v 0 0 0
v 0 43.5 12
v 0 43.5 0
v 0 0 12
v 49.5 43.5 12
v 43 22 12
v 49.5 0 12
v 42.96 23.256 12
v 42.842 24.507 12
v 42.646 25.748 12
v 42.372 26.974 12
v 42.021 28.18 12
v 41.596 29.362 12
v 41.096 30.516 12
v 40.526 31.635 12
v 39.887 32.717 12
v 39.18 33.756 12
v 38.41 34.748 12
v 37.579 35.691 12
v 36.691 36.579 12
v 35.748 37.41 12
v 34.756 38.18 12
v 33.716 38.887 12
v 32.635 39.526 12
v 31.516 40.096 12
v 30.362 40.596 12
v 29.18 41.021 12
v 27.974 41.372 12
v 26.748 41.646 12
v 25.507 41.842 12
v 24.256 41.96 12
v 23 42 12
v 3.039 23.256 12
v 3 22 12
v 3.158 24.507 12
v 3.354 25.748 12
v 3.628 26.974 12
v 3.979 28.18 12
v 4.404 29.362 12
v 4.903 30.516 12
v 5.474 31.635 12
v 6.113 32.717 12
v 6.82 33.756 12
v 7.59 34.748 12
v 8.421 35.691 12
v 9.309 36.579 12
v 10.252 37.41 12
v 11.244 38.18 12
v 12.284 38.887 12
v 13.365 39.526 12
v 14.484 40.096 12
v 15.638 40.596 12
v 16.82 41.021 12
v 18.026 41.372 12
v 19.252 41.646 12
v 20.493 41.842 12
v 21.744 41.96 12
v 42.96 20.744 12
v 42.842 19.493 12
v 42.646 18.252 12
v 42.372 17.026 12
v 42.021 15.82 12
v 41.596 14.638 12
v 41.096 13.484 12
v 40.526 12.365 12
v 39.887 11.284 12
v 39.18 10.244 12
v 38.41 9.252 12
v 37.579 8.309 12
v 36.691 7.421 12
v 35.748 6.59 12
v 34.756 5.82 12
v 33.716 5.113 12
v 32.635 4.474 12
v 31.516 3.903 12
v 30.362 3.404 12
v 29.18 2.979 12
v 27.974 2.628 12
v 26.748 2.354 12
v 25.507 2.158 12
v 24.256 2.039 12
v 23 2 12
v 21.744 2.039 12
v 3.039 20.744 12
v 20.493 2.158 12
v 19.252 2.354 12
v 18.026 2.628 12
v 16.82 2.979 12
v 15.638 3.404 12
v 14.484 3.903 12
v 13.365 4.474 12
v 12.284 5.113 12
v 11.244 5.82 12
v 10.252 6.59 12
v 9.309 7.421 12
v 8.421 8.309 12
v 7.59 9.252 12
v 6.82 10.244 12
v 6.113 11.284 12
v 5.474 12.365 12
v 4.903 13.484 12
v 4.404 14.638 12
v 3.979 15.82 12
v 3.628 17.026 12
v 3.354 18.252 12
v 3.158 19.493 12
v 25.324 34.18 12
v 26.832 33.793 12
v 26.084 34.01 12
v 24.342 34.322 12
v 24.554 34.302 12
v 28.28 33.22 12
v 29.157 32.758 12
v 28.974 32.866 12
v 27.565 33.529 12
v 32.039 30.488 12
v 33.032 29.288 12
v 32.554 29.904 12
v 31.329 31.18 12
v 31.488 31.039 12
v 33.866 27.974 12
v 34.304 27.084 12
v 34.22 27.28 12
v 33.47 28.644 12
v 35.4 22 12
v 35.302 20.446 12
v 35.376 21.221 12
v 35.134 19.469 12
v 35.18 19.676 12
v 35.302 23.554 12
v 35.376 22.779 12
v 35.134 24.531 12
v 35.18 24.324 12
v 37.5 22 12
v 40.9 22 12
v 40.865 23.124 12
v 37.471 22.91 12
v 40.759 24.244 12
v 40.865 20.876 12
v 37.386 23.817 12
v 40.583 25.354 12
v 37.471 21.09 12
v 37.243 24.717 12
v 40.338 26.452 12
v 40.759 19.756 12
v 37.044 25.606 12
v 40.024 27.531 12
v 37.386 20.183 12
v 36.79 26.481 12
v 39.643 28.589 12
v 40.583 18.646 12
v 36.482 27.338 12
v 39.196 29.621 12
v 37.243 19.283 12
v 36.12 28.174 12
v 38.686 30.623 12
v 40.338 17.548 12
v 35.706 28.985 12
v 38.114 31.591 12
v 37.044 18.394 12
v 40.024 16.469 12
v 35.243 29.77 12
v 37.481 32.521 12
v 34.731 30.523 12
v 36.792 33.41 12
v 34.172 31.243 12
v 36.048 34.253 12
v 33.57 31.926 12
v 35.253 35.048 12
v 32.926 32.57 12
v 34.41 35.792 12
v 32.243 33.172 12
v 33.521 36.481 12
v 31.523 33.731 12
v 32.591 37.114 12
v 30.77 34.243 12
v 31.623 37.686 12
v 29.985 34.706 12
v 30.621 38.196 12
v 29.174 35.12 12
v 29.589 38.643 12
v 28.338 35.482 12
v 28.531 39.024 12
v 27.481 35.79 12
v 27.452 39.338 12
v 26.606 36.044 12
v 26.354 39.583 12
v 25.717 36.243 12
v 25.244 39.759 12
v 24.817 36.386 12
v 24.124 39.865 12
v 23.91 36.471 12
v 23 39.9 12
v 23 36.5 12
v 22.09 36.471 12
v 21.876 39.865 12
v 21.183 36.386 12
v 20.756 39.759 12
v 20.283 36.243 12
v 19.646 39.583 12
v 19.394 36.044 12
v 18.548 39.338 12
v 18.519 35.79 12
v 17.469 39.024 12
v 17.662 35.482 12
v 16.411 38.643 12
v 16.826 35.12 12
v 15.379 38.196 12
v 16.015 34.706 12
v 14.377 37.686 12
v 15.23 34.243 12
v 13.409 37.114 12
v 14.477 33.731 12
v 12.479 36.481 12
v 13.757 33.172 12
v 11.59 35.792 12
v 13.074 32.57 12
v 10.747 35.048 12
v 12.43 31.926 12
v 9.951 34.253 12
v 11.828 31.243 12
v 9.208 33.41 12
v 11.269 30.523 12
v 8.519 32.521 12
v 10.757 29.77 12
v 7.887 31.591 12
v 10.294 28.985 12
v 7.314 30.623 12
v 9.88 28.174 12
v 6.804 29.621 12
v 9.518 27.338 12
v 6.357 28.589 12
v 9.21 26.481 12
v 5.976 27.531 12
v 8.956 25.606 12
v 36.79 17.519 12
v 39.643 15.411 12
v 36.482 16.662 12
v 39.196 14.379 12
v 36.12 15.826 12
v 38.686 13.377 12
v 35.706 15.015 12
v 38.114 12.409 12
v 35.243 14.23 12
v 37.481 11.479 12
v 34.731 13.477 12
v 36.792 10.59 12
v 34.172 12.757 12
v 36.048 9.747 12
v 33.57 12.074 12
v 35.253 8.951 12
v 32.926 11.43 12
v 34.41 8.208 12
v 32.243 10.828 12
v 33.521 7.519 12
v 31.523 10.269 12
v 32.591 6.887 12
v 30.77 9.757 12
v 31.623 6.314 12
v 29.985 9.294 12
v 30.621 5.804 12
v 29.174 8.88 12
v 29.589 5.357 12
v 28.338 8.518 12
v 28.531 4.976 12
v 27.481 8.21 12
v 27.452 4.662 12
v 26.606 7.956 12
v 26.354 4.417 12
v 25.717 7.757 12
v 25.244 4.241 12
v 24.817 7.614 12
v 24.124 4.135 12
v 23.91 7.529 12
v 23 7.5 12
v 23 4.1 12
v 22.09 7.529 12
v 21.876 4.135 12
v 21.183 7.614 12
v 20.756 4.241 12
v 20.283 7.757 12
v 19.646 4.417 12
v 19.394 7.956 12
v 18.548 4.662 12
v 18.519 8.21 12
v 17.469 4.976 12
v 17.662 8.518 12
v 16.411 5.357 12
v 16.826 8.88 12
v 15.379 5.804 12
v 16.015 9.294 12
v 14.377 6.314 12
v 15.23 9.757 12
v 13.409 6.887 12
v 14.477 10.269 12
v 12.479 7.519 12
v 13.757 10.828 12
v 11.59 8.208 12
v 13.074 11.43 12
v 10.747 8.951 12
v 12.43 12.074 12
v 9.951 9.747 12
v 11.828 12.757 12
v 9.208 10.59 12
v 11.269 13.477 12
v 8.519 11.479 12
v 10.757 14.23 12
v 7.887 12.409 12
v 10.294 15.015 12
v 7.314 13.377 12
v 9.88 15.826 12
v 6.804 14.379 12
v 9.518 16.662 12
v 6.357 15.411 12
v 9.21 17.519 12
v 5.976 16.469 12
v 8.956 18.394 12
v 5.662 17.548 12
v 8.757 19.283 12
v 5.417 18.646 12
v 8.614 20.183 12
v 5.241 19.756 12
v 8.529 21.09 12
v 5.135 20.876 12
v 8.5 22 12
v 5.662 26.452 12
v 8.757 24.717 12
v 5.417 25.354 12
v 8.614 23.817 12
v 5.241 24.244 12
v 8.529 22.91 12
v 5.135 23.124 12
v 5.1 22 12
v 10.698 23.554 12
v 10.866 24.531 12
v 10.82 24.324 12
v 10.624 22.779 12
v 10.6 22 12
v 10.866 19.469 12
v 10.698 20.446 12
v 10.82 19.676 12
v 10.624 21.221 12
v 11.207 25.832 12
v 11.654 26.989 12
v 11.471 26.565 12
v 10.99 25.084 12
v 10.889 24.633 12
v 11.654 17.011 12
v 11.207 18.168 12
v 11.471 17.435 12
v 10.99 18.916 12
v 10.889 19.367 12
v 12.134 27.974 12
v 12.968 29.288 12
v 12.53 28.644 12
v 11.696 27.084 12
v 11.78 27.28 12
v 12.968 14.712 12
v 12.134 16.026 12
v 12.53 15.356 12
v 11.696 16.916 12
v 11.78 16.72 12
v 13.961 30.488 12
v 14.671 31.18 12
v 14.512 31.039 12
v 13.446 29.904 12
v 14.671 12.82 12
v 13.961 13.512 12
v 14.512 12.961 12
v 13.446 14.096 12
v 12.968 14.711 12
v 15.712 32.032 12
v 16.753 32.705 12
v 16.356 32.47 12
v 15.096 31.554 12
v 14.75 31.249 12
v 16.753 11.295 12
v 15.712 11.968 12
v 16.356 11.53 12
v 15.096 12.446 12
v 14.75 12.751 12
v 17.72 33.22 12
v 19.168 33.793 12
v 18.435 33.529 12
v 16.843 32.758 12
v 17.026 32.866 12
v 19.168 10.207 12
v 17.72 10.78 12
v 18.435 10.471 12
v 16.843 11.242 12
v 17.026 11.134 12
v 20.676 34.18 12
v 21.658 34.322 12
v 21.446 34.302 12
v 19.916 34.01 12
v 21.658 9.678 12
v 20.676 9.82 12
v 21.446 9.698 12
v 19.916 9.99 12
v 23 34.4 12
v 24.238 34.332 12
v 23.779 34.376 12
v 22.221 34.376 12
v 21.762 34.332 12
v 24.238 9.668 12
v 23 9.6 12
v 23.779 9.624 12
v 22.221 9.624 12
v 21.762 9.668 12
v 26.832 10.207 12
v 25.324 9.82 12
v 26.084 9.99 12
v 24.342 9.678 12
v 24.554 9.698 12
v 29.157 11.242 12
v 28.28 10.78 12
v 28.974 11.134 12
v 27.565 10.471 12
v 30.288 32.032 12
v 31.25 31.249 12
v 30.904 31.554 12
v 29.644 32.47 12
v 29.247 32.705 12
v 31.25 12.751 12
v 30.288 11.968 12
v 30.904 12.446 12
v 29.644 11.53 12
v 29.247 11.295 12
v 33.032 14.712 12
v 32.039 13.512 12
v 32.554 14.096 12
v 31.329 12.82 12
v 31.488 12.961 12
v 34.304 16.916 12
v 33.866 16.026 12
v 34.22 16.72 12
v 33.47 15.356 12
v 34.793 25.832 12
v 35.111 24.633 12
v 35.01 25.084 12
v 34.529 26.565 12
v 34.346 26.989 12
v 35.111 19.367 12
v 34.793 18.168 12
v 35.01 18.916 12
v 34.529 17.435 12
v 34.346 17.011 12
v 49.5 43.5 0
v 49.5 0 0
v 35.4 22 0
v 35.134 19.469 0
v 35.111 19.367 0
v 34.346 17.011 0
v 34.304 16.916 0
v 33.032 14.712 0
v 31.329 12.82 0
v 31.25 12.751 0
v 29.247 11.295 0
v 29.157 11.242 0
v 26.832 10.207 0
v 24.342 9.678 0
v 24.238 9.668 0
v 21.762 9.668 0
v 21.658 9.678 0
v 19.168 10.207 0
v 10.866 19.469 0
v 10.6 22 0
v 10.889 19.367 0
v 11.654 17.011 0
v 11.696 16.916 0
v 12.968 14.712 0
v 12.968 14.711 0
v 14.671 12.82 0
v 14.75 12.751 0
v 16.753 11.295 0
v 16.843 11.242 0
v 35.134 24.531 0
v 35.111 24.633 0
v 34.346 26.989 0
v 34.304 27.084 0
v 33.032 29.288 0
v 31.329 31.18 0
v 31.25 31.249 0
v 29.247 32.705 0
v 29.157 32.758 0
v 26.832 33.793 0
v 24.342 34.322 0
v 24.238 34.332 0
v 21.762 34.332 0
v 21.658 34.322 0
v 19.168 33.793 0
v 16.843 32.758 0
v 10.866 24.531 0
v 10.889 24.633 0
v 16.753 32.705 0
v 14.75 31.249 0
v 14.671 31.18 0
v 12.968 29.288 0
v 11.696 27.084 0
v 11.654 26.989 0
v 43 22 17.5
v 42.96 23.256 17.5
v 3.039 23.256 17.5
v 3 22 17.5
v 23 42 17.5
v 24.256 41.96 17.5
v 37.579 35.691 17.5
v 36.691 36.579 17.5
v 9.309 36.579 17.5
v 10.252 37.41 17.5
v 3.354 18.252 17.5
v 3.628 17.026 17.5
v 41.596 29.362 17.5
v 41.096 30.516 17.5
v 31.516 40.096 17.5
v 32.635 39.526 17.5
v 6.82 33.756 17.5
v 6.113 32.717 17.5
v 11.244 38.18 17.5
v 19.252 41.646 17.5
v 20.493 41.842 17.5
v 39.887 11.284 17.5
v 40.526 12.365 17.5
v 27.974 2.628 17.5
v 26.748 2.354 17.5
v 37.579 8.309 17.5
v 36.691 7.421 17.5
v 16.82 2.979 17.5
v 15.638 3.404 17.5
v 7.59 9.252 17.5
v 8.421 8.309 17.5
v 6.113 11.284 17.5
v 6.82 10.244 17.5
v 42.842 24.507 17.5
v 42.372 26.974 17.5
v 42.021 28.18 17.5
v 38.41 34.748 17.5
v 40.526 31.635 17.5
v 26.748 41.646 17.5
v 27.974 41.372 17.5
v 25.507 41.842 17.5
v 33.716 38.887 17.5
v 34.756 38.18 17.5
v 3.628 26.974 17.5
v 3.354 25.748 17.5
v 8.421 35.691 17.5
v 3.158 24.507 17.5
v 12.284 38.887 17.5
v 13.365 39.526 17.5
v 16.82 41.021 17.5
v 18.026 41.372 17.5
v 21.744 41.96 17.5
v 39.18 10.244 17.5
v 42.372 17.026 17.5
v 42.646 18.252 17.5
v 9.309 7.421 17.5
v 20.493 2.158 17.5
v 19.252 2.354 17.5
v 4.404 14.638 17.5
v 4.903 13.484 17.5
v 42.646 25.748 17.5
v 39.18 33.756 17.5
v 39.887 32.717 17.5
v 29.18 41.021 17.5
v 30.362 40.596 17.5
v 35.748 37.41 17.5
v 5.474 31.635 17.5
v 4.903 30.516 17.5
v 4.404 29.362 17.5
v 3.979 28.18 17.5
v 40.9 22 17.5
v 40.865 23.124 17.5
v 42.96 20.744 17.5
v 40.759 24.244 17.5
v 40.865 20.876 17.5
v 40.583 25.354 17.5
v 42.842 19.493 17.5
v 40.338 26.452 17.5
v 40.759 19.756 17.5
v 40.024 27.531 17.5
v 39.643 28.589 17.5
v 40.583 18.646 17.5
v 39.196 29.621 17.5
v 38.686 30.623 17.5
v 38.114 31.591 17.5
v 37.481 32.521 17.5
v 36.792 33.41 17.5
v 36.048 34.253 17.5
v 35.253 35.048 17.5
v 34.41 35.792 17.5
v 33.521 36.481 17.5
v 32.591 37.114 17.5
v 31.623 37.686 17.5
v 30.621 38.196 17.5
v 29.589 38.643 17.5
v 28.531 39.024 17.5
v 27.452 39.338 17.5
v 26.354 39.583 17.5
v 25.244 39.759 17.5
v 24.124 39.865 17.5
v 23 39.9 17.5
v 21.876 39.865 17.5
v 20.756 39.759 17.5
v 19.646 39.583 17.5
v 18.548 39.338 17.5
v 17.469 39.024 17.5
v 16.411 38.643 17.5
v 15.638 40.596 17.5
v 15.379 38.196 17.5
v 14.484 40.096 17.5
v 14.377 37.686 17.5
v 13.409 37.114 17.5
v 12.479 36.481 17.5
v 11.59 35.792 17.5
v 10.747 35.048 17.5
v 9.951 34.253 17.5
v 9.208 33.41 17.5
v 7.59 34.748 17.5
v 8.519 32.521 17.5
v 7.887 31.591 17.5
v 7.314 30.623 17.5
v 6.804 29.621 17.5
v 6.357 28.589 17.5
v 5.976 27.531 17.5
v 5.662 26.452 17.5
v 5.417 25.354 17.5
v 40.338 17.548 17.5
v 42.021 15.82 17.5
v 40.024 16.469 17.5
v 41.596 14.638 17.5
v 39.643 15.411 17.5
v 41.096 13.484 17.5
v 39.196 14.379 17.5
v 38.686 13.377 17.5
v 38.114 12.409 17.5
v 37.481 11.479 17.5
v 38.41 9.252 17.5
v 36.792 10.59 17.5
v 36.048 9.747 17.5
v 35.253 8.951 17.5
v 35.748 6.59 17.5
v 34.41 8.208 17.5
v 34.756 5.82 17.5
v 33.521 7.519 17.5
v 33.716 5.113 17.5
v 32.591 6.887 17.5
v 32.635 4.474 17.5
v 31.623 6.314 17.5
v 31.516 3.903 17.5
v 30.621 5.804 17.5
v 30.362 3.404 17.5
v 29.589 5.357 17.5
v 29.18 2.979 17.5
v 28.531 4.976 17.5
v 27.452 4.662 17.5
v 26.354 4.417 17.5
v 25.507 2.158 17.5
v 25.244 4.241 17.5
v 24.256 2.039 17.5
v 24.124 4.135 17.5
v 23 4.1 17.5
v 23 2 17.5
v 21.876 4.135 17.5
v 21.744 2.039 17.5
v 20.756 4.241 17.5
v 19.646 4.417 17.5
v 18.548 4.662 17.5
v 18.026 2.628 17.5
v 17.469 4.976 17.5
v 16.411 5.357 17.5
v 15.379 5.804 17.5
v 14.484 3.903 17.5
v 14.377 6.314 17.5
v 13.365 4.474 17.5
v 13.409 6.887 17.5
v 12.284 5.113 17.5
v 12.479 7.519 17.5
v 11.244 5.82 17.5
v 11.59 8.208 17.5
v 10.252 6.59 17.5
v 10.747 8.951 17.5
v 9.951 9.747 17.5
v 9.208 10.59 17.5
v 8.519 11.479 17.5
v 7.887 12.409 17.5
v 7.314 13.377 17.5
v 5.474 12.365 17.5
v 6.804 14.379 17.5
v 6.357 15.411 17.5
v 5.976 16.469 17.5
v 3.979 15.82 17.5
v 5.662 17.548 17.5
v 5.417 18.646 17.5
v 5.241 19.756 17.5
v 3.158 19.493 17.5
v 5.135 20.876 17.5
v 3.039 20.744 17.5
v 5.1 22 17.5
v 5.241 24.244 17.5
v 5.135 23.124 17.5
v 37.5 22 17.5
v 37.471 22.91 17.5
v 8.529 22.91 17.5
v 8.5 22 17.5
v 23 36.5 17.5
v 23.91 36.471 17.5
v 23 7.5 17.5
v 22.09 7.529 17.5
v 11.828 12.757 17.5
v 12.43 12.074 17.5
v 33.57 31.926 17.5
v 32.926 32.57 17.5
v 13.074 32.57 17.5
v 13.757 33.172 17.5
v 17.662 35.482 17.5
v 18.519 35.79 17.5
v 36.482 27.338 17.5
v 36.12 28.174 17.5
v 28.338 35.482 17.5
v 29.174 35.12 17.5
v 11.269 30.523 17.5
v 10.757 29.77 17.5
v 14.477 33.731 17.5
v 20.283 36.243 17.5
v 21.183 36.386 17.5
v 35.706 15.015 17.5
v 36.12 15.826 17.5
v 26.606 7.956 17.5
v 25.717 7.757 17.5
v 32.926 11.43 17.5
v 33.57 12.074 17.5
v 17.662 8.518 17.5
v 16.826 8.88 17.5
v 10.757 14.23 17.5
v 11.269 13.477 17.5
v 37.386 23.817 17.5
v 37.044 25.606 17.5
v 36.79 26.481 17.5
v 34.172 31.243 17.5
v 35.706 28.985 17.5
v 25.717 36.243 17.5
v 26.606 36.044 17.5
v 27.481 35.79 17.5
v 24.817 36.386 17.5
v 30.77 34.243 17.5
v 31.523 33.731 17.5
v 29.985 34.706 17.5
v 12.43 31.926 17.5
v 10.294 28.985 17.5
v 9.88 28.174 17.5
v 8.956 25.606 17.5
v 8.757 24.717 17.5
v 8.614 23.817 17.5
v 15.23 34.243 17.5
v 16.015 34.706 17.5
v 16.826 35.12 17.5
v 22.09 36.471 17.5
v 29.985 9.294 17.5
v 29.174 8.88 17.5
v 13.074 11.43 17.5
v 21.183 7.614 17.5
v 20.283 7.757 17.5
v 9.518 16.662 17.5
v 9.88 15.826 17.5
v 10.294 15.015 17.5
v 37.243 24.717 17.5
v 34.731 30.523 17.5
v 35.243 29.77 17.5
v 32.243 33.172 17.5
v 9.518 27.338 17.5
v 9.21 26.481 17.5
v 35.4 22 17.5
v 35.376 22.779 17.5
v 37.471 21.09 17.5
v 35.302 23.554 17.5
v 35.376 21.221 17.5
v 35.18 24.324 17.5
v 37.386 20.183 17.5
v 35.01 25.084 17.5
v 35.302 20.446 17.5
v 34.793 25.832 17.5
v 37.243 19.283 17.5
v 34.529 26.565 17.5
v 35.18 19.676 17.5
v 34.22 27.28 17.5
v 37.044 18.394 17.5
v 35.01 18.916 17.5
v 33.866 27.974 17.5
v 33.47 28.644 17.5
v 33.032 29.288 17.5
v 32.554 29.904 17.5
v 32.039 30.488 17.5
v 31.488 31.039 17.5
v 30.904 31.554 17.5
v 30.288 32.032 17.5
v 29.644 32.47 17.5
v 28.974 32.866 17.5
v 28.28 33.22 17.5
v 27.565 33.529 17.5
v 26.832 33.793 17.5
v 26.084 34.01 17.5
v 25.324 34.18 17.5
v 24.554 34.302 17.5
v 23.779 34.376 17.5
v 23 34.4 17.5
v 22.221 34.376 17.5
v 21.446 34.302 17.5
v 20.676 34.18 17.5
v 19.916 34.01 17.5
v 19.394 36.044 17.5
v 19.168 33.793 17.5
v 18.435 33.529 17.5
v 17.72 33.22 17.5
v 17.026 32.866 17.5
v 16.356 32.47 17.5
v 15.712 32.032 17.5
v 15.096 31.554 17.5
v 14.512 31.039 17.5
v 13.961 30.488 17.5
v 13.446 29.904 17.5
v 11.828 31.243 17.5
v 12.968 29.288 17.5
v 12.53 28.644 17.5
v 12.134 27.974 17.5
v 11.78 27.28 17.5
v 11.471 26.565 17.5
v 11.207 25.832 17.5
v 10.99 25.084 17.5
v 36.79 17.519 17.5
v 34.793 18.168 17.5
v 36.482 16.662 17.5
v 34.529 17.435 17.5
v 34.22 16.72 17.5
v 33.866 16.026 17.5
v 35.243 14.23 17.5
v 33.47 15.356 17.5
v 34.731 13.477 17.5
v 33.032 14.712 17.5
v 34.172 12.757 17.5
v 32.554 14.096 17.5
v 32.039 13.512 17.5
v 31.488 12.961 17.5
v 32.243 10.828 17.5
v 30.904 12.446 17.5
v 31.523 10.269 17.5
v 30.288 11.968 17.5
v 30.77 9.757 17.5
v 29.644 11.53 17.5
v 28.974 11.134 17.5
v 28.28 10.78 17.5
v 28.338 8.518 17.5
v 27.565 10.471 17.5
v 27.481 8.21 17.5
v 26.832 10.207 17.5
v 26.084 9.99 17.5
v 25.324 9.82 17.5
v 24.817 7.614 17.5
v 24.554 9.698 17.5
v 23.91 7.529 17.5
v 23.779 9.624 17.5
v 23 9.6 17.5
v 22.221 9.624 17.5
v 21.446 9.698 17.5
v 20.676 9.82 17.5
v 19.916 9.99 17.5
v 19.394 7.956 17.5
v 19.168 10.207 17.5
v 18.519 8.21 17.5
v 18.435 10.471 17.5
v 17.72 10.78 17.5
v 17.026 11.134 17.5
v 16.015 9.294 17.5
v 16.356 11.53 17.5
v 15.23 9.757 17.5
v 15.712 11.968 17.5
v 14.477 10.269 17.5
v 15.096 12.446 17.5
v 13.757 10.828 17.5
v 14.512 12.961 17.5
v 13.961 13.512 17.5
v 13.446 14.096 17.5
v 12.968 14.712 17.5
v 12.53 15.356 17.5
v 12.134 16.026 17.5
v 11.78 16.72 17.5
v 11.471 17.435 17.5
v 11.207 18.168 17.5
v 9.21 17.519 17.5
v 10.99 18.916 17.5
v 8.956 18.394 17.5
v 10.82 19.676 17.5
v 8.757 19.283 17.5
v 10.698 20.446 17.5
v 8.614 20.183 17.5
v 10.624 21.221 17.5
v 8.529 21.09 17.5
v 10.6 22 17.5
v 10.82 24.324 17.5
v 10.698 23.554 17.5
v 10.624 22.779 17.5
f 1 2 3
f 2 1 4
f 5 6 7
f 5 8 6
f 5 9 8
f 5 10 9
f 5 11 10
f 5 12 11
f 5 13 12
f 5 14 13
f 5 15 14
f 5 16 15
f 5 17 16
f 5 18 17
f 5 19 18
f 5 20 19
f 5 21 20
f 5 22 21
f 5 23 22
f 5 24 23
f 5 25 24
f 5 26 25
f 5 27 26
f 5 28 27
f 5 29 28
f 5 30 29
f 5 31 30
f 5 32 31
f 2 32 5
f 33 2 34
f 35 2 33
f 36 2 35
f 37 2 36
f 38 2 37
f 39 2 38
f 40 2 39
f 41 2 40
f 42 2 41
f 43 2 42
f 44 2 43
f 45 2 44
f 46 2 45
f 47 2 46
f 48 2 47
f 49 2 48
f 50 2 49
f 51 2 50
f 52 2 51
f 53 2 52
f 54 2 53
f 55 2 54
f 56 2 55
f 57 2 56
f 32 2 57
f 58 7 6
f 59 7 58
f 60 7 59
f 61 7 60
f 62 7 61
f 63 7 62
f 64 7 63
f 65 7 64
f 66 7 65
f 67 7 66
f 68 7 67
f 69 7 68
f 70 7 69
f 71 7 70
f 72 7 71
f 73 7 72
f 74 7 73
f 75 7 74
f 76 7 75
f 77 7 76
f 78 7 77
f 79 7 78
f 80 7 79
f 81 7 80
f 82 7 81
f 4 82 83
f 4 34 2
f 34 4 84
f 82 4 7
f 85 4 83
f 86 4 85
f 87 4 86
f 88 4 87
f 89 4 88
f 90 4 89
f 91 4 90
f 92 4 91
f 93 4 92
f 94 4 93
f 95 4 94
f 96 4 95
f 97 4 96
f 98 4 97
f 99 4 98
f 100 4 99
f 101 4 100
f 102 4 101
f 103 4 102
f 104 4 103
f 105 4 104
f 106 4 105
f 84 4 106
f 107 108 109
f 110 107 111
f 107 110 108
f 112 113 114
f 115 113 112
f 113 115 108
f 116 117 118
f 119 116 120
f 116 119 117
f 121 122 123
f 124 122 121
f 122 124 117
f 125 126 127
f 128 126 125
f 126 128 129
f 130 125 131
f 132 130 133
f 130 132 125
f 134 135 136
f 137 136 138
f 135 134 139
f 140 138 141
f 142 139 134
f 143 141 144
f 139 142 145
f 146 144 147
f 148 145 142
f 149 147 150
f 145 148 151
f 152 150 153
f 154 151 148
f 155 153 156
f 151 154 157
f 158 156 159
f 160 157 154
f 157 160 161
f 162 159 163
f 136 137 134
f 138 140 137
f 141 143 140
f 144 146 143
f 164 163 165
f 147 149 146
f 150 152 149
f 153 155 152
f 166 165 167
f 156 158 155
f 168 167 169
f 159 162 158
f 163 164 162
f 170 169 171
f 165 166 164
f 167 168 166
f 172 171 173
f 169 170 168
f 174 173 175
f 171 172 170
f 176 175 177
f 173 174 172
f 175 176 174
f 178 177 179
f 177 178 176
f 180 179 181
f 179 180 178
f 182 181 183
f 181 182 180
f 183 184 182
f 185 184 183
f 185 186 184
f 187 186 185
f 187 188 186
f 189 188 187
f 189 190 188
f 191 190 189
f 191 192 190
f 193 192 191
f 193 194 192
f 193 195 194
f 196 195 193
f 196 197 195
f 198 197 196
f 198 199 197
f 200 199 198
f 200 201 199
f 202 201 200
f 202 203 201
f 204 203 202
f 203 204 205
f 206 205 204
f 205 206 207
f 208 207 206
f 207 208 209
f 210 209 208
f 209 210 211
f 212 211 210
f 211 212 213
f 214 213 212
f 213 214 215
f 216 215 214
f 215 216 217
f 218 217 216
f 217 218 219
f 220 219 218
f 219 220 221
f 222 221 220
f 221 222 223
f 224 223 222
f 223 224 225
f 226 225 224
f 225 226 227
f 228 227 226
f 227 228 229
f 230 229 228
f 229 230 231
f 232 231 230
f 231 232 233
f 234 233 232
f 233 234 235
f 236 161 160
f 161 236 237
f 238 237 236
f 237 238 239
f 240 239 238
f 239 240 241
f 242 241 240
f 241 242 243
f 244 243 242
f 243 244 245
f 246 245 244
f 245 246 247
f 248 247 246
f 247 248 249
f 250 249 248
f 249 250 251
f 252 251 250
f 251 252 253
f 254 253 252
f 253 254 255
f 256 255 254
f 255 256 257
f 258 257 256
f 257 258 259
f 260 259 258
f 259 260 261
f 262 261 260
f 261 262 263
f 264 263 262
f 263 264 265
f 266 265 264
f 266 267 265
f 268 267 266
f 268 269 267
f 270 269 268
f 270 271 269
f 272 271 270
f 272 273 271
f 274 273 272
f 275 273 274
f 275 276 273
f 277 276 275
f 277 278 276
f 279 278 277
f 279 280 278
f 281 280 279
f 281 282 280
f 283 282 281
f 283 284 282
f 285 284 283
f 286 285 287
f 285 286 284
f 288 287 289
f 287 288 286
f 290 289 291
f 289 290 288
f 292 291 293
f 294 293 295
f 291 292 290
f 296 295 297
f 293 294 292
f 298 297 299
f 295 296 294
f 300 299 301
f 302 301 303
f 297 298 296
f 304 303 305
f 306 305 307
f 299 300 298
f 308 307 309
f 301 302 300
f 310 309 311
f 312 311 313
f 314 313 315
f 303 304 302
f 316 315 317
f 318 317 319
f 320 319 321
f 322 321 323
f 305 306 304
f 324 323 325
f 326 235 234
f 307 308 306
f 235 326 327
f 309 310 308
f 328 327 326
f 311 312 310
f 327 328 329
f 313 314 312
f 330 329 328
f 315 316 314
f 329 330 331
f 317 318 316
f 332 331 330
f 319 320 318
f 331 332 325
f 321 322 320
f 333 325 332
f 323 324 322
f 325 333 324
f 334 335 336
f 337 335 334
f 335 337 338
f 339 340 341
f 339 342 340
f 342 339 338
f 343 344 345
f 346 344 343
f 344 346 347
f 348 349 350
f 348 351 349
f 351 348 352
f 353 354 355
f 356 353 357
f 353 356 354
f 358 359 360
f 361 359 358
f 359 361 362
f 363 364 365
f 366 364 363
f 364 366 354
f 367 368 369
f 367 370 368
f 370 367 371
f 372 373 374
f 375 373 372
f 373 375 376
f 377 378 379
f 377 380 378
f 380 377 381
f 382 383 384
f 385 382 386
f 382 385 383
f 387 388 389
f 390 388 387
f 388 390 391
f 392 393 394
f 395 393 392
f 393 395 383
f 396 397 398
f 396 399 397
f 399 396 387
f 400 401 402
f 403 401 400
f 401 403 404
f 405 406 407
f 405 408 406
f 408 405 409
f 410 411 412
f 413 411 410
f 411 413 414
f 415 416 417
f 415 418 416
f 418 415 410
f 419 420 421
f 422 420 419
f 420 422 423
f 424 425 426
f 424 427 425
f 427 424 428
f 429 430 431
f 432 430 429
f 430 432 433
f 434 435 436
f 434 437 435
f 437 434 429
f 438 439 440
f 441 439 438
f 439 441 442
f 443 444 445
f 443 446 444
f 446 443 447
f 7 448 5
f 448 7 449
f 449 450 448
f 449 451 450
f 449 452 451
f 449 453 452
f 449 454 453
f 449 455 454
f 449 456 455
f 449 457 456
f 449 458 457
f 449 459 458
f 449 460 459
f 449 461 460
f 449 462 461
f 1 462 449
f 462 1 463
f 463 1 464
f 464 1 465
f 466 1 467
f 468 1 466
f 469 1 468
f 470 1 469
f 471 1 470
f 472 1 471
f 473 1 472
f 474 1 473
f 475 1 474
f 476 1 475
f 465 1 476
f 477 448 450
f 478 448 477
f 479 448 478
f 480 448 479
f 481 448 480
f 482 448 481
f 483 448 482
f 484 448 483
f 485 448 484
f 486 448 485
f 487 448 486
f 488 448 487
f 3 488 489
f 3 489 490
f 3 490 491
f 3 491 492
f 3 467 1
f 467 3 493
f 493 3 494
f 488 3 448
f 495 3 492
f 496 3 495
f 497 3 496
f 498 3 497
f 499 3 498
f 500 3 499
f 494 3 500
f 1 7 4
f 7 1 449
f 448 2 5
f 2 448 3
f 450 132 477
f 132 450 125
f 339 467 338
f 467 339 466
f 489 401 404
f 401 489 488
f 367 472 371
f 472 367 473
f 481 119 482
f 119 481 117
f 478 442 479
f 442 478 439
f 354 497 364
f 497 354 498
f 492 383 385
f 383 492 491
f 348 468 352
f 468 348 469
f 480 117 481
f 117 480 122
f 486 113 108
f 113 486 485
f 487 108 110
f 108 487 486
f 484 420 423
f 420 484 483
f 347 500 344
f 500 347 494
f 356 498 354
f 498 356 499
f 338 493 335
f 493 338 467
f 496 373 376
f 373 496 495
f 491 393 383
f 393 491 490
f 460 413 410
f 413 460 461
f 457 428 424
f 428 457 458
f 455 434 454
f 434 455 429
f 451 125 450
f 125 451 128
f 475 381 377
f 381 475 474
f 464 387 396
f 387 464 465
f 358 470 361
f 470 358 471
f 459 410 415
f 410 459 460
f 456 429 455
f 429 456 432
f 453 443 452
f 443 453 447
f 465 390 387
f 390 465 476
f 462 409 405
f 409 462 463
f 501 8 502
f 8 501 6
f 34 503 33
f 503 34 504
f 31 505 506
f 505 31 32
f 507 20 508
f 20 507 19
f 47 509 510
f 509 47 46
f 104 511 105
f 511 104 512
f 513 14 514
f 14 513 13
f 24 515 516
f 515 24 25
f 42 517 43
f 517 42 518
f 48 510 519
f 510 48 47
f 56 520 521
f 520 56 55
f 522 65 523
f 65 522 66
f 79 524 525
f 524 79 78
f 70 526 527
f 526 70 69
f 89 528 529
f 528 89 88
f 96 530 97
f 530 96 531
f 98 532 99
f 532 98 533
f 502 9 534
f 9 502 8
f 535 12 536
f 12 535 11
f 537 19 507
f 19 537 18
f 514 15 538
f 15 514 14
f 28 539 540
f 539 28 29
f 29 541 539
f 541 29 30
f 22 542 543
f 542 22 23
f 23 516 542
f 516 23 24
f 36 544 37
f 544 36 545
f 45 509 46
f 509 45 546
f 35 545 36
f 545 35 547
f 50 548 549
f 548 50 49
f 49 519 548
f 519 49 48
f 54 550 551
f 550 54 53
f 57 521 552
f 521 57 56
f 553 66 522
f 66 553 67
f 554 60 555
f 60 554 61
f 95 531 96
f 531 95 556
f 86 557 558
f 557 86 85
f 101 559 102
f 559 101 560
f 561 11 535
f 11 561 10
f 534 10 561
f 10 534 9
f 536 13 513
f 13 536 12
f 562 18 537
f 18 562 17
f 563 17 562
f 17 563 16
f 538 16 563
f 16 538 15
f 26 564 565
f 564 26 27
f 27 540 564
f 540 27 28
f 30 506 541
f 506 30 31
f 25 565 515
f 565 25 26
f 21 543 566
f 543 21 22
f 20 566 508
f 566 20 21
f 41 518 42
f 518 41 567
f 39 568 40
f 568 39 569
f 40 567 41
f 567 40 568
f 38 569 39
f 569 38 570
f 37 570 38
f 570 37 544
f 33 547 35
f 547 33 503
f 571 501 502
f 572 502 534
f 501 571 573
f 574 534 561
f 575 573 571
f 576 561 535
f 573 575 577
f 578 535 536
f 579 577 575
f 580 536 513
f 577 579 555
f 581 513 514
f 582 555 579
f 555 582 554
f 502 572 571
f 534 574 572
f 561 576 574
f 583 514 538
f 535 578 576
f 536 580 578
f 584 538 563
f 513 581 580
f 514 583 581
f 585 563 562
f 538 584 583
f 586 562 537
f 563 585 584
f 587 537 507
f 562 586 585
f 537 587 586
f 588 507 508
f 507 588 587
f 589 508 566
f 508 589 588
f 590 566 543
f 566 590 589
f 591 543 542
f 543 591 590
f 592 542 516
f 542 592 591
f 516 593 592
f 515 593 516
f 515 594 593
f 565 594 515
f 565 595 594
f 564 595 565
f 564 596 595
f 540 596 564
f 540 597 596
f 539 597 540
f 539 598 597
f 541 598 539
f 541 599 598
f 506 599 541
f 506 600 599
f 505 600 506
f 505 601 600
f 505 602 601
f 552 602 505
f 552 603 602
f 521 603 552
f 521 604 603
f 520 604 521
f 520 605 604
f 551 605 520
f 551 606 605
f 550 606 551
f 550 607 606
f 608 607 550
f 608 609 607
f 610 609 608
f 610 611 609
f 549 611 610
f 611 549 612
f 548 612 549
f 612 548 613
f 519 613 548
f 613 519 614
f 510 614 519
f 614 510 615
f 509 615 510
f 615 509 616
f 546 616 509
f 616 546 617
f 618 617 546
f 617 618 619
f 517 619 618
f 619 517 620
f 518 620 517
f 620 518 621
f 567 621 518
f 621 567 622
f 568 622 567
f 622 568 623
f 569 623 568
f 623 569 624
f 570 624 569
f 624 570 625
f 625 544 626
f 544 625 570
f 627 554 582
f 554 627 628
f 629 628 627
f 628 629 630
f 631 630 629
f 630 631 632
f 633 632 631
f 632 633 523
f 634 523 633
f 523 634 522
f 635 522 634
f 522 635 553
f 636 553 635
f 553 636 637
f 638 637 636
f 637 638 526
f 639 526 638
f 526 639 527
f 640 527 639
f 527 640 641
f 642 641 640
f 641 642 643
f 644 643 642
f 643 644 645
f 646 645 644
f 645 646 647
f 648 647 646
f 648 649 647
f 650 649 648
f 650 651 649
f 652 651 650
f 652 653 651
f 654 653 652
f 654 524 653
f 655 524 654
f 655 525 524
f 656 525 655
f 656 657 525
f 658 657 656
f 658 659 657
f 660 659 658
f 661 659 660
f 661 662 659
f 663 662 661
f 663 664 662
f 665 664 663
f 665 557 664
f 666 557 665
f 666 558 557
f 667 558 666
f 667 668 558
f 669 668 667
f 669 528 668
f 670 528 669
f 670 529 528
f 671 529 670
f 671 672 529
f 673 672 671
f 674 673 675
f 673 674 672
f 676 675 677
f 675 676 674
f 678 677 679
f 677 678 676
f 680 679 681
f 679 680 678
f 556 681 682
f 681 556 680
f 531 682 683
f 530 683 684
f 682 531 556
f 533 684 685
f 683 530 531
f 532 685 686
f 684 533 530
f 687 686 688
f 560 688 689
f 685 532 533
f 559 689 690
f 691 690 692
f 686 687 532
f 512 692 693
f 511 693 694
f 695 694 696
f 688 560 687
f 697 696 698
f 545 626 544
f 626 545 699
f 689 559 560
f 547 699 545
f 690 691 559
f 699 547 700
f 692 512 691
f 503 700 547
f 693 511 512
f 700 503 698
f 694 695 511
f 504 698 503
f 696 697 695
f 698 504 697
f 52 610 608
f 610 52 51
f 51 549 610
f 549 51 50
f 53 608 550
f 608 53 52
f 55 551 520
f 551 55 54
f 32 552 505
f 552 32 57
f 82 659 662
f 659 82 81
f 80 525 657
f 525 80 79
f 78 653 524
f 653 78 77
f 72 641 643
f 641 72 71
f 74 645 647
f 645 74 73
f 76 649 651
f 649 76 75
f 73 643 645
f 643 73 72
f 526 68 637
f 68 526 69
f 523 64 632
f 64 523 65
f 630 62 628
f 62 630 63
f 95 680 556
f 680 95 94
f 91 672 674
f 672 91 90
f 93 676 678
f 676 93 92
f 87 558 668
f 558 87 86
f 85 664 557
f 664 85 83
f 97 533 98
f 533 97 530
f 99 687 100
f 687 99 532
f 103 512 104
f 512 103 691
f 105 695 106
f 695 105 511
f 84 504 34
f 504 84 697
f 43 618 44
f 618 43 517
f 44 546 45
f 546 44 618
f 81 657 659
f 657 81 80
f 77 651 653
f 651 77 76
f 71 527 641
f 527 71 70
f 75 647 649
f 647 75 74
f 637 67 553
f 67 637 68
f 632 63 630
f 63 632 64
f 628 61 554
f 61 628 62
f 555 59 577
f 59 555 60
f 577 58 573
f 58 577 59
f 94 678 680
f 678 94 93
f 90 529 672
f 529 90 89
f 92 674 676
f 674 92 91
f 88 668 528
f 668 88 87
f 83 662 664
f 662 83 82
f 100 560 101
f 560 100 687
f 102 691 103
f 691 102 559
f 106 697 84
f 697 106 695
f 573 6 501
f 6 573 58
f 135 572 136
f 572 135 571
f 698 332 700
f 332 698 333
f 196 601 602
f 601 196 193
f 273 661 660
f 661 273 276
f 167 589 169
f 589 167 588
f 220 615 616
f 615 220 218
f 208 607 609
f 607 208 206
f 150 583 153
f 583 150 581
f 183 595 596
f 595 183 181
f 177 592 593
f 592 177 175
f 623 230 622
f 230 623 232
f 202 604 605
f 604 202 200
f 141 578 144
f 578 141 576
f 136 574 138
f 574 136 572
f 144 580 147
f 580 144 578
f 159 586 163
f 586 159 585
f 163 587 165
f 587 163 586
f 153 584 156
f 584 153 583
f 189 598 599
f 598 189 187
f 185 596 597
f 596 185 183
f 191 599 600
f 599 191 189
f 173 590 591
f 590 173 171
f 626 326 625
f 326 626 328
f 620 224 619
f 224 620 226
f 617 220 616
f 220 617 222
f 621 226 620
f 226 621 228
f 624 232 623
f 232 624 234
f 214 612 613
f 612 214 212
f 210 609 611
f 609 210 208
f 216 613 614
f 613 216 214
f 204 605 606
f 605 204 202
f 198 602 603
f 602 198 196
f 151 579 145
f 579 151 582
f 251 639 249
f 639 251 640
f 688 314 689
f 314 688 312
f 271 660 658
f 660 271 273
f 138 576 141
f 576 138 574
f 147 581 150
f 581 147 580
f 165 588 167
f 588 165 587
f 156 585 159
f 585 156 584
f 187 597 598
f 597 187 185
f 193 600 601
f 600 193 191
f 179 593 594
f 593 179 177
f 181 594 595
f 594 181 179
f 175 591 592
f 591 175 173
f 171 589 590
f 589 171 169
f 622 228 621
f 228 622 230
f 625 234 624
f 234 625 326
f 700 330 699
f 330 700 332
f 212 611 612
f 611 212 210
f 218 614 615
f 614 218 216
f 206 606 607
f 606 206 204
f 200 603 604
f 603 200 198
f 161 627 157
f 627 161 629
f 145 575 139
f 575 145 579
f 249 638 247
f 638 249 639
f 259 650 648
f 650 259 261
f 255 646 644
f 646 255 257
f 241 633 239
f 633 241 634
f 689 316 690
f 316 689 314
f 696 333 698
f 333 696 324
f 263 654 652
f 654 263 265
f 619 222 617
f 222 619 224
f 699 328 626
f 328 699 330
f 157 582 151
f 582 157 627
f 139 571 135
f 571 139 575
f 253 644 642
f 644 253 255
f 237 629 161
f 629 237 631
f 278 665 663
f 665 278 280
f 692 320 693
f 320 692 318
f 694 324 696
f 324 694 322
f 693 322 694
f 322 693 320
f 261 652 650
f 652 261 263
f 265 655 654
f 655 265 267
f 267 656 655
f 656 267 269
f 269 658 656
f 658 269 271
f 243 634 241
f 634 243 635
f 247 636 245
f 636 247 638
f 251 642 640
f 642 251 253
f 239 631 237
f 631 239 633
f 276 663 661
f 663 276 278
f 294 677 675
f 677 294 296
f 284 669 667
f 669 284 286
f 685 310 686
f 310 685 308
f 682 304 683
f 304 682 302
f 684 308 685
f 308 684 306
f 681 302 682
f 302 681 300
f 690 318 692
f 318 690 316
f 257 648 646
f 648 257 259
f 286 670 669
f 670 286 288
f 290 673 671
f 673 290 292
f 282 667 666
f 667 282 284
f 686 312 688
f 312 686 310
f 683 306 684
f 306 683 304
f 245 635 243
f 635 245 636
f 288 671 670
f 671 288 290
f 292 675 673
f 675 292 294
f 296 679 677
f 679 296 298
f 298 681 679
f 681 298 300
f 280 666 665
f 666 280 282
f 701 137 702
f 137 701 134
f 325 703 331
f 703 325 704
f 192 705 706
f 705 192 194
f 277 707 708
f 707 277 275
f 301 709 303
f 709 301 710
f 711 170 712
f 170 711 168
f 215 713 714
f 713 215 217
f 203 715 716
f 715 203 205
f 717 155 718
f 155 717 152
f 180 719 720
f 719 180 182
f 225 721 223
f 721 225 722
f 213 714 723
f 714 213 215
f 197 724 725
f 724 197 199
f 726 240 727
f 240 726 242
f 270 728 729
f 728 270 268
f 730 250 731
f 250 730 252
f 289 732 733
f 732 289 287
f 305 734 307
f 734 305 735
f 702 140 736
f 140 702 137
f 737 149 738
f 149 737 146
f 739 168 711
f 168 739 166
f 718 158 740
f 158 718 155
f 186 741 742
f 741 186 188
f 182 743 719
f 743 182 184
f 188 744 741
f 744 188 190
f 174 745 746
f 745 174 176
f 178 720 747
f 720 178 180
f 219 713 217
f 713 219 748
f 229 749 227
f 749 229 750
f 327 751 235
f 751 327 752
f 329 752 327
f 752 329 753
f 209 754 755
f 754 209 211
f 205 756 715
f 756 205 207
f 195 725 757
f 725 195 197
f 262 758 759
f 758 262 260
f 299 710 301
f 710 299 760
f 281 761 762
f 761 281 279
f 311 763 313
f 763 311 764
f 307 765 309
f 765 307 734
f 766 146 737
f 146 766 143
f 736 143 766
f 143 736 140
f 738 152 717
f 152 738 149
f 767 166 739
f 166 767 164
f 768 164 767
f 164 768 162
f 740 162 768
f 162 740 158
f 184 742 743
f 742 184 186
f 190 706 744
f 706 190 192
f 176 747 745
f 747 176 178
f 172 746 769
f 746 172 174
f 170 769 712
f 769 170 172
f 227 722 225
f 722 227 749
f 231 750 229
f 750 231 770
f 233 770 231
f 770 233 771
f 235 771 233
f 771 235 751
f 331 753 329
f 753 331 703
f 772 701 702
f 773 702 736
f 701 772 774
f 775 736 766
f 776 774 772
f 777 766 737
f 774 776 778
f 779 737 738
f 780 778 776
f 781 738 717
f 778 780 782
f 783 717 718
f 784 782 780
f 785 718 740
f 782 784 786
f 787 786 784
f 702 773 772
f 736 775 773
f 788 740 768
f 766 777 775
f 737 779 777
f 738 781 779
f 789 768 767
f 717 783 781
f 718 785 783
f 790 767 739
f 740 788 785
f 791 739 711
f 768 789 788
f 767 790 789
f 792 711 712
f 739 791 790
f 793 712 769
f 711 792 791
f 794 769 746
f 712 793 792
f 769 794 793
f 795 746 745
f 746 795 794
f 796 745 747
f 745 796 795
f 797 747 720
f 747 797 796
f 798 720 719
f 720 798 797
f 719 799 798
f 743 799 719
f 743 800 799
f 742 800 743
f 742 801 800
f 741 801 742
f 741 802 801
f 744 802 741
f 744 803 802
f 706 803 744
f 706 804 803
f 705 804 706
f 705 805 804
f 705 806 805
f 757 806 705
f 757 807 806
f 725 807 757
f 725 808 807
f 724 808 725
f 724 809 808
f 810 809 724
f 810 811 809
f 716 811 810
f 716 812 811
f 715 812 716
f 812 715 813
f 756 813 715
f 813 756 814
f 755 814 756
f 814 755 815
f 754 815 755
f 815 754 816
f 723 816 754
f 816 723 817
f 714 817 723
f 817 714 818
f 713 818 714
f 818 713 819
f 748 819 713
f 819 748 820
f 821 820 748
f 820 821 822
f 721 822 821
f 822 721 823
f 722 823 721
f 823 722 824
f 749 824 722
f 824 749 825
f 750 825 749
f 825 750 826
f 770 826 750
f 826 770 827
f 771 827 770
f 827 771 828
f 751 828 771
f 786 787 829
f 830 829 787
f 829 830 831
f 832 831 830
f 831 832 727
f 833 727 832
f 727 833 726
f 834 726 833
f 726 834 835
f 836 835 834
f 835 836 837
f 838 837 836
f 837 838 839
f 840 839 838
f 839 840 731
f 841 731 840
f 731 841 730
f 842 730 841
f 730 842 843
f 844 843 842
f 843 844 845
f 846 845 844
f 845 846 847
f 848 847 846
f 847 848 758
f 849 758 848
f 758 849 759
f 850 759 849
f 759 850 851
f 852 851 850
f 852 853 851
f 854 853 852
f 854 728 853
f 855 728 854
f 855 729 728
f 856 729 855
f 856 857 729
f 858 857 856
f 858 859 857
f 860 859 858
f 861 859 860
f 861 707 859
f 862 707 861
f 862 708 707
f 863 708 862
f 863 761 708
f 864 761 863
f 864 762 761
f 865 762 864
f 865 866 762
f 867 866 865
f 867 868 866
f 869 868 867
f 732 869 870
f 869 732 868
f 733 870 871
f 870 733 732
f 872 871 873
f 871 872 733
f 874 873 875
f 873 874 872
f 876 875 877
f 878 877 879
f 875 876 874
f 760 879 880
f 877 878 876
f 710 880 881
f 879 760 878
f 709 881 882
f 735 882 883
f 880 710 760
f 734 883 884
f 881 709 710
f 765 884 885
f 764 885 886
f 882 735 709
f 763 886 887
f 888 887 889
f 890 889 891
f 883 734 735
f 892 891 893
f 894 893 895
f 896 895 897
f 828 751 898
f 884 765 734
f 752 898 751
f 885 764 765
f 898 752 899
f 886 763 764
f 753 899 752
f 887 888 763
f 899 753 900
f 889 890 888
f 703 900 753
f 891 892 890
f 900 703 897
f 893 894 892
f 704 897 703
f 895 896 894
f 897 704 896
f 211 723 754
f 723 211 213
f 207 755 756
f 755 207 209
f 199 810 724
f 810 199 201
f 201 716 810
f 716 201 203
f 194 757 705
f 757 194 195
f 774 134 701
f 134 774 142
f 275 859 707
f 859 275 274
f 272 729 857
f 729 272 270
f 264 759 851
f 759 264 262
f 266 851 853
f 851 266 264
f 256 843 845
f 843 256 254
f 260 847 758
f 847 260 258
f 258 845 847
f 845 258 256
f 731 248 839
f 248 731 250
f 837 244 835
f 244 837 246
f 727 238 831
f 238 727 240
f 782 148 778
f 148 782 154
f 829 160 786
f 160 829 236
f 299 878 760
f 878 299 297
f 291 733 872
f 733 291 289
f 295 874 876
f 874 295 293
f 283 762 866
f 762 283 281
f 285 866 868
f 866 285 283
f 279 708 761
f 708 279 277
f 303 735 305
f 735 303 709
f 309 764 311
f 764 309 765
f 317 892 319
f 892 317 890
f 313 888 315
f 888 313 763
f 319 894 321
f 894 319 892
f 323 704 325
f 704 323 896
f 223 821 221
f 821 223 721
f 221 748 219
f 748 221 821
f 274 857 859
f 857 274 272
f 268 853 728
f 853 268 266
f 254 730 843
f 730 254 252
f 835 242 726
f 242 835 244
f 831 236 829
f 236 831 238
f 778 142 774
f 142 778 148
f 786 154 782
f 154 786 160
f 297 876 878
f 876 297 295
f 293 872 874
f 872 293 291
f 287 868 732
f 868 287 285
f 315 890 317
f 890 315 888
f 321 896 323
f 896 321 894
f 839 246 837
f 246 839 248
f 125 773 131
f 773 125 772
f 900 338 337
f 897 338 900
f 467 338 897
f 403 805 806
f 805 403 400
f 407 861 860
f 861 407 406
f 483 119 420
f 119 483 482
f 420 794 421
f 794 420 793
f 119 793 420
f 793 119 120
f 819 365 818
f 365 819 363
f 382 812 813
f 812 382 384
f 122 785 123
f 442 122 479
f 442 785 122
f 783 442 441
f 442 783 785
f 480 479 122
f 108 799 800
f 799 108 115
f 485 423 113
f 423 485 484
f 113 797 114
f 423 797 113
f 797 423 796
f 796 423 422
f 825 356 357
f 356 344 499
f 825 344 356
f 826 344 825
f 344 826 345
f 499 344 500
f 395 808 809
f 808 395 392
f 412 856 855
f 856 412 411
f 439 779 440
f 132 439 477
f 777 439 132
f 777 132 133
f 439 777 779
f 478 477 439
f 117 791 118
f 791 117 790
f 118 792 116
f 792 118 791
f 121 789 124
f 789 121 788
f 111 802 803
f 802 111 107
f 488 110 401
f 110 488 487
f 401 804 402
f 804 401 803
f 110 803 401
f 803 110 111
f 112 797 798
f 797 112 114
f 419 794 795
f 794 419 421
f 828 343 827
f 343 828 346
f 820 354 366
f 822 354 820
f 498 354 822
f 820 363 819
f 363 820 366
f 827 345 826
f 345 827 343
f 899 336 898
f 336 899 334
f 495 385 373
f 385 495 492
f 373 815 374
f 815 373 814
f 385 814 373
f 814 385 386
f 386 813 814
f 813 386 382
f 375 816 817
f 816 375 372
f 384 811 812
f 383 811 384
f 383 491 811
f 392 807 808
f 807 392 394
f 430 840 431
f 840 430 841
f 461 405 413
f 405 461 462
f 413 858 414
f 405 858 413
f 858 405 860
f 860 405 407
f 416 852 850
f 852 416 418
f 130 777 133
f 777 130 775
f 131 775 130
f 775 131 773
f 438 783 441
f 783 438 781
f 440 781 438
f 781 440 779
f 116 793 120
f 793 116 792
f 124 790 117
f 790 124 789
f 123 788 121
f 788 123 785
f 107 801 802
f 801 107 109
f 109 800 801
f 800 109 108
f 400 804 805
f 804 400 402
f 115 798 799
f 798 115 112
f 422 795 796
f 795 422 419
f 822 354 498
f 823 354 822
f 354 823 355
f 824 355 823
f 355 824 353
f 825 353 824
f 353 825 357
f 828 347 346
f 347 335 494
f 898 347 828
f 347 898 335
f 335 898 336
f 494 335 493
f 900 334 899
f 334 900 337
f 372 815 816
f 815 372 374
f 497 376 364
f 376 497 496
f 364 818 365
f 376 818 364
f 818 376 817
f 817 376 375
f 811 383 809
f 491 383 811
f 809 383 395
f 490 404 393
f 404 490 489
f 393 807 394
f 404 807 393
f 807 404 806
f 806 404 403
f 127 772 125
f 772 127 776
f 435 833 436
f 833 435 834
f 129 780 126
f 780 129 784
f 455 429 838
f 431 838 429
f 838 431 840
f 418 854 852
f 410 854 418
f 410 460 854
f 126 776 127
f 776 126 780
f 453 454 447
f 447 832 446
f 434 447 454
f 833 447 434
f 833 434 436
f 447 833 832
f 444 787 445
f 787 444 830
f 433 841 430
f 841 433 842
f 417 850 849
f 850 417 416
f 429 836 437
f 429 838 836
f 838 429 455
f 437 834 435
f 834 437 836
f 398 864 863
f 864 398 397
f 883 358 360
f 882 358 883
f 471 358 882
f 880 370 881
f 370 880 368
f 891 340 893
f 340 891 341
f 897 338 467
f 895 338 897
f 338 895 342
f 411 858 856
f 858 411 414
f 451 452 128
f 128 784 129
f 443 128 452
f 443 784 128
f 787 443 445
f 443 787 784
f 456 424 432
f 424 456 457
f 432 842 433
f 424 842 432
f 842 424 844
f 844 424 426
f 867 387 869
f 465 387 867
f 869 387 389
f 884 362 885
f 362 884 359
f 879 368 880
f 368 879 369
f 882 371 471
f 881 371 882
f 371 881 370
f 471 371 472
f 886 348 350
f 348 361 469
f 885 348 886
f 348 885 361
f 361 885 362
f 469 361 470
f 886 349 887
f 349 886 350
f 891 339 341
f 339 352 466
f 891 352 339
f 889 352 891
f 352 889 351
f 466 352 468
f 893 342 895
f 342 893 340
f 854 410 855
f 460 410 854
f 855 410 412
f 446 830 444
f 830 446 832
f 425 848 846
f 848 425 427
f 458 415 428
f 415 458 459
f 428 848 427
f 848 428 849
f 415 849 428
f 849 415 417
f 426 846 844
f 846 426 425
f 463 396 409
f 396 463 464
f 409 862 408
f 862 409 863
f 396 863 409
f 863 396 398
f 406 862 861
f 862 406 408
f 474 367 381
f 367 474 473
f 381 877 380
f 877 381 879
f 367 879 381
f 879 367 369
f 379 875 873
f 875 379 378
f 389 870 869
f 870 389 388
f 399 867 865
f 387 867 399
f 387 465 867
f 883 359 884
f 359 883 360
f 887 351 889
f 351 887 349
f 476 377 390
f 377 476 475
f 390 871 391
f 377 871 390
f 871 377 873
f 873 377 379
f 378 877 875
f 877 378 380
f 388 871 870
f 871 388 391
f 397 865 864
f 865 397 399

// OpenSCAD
// file: ../../../../shapes/open-cylinder/open-cylinder.scad
openCylinder();

module openCylinder(height = 3,
                    outerRadius = 7,
                    innerRadius = 4.5,
                    fn = 100)
{
    $fn = fn;
        
    difference()
    {
        cylinder(r=outerRadius,
                 h=height);
                
        translate([0, 0, -1])
        cylinder(r=innerRadius,
                 h=height+1.01);
    }
}
// main file
use <../../../../shapes/open-cylinder/open-cylinder.scad>

cylinderHeight = 17.5;

innerRingOuterRadius = 14.5;

ringTranslate = [23.0, 22.0, 0];

ringThickness = 2.1;

// this one is the reference version
//translate([282, 0, 0])
//stlVersion();

// this one is inside the openscad version (for sizing)
//color("green")
//translate([282, -65, 0])
//stlVersion();

eyePiece();

module basePiece()
{
	difference()
	{
		block();
		
		blockCutouts();
	}
}

module baseAdornments()
{
	outerRing();
	
	innerRing();
}		

module block()
{
	x = 49.5;
	y = 43.50;
	z = 12;
	
	cube([x, y, z]);	
}

module blockCutouts()
{
	translate([0,0,-0.01])
	eyeCutout();
	
	
}

module eyeCutout()
{
	radius = innerRingOuterRadius - ringThickness;	
	translate(ringTranslate)
	cylinder(r=radius, h=30);	
}

module eyePiece()
{
	union()
	{
		basePiece();
		
		baseAdornments();
	}
}

module innerRing()
{
	innerR = innerRingOuterRadius - ringThickness;
	translate(ringTranslate)
	openCylinder(height=cylinderHeight, outerRadius=innerRingOuterRadius, innerRadius=innerR);
}

module outerRing()
{
	outerR = 20.0;
	innerR = outerR - ringThickness; 
	translate(ringTranslate)
	openCylinder(height=cylinderHeight, outerRadius=outerR, innerRadius=innerR);
}
	
module stlVersion()
{
	//
	import("C:\\home\\world\\versioning\\beto-land-world\\3d-printing\\wearables\\el-wire-cyborg-eye\\Fiore9\\El_Wire_Cyborg_Eye\\files\\cyborg_eye_right.stl");
}
